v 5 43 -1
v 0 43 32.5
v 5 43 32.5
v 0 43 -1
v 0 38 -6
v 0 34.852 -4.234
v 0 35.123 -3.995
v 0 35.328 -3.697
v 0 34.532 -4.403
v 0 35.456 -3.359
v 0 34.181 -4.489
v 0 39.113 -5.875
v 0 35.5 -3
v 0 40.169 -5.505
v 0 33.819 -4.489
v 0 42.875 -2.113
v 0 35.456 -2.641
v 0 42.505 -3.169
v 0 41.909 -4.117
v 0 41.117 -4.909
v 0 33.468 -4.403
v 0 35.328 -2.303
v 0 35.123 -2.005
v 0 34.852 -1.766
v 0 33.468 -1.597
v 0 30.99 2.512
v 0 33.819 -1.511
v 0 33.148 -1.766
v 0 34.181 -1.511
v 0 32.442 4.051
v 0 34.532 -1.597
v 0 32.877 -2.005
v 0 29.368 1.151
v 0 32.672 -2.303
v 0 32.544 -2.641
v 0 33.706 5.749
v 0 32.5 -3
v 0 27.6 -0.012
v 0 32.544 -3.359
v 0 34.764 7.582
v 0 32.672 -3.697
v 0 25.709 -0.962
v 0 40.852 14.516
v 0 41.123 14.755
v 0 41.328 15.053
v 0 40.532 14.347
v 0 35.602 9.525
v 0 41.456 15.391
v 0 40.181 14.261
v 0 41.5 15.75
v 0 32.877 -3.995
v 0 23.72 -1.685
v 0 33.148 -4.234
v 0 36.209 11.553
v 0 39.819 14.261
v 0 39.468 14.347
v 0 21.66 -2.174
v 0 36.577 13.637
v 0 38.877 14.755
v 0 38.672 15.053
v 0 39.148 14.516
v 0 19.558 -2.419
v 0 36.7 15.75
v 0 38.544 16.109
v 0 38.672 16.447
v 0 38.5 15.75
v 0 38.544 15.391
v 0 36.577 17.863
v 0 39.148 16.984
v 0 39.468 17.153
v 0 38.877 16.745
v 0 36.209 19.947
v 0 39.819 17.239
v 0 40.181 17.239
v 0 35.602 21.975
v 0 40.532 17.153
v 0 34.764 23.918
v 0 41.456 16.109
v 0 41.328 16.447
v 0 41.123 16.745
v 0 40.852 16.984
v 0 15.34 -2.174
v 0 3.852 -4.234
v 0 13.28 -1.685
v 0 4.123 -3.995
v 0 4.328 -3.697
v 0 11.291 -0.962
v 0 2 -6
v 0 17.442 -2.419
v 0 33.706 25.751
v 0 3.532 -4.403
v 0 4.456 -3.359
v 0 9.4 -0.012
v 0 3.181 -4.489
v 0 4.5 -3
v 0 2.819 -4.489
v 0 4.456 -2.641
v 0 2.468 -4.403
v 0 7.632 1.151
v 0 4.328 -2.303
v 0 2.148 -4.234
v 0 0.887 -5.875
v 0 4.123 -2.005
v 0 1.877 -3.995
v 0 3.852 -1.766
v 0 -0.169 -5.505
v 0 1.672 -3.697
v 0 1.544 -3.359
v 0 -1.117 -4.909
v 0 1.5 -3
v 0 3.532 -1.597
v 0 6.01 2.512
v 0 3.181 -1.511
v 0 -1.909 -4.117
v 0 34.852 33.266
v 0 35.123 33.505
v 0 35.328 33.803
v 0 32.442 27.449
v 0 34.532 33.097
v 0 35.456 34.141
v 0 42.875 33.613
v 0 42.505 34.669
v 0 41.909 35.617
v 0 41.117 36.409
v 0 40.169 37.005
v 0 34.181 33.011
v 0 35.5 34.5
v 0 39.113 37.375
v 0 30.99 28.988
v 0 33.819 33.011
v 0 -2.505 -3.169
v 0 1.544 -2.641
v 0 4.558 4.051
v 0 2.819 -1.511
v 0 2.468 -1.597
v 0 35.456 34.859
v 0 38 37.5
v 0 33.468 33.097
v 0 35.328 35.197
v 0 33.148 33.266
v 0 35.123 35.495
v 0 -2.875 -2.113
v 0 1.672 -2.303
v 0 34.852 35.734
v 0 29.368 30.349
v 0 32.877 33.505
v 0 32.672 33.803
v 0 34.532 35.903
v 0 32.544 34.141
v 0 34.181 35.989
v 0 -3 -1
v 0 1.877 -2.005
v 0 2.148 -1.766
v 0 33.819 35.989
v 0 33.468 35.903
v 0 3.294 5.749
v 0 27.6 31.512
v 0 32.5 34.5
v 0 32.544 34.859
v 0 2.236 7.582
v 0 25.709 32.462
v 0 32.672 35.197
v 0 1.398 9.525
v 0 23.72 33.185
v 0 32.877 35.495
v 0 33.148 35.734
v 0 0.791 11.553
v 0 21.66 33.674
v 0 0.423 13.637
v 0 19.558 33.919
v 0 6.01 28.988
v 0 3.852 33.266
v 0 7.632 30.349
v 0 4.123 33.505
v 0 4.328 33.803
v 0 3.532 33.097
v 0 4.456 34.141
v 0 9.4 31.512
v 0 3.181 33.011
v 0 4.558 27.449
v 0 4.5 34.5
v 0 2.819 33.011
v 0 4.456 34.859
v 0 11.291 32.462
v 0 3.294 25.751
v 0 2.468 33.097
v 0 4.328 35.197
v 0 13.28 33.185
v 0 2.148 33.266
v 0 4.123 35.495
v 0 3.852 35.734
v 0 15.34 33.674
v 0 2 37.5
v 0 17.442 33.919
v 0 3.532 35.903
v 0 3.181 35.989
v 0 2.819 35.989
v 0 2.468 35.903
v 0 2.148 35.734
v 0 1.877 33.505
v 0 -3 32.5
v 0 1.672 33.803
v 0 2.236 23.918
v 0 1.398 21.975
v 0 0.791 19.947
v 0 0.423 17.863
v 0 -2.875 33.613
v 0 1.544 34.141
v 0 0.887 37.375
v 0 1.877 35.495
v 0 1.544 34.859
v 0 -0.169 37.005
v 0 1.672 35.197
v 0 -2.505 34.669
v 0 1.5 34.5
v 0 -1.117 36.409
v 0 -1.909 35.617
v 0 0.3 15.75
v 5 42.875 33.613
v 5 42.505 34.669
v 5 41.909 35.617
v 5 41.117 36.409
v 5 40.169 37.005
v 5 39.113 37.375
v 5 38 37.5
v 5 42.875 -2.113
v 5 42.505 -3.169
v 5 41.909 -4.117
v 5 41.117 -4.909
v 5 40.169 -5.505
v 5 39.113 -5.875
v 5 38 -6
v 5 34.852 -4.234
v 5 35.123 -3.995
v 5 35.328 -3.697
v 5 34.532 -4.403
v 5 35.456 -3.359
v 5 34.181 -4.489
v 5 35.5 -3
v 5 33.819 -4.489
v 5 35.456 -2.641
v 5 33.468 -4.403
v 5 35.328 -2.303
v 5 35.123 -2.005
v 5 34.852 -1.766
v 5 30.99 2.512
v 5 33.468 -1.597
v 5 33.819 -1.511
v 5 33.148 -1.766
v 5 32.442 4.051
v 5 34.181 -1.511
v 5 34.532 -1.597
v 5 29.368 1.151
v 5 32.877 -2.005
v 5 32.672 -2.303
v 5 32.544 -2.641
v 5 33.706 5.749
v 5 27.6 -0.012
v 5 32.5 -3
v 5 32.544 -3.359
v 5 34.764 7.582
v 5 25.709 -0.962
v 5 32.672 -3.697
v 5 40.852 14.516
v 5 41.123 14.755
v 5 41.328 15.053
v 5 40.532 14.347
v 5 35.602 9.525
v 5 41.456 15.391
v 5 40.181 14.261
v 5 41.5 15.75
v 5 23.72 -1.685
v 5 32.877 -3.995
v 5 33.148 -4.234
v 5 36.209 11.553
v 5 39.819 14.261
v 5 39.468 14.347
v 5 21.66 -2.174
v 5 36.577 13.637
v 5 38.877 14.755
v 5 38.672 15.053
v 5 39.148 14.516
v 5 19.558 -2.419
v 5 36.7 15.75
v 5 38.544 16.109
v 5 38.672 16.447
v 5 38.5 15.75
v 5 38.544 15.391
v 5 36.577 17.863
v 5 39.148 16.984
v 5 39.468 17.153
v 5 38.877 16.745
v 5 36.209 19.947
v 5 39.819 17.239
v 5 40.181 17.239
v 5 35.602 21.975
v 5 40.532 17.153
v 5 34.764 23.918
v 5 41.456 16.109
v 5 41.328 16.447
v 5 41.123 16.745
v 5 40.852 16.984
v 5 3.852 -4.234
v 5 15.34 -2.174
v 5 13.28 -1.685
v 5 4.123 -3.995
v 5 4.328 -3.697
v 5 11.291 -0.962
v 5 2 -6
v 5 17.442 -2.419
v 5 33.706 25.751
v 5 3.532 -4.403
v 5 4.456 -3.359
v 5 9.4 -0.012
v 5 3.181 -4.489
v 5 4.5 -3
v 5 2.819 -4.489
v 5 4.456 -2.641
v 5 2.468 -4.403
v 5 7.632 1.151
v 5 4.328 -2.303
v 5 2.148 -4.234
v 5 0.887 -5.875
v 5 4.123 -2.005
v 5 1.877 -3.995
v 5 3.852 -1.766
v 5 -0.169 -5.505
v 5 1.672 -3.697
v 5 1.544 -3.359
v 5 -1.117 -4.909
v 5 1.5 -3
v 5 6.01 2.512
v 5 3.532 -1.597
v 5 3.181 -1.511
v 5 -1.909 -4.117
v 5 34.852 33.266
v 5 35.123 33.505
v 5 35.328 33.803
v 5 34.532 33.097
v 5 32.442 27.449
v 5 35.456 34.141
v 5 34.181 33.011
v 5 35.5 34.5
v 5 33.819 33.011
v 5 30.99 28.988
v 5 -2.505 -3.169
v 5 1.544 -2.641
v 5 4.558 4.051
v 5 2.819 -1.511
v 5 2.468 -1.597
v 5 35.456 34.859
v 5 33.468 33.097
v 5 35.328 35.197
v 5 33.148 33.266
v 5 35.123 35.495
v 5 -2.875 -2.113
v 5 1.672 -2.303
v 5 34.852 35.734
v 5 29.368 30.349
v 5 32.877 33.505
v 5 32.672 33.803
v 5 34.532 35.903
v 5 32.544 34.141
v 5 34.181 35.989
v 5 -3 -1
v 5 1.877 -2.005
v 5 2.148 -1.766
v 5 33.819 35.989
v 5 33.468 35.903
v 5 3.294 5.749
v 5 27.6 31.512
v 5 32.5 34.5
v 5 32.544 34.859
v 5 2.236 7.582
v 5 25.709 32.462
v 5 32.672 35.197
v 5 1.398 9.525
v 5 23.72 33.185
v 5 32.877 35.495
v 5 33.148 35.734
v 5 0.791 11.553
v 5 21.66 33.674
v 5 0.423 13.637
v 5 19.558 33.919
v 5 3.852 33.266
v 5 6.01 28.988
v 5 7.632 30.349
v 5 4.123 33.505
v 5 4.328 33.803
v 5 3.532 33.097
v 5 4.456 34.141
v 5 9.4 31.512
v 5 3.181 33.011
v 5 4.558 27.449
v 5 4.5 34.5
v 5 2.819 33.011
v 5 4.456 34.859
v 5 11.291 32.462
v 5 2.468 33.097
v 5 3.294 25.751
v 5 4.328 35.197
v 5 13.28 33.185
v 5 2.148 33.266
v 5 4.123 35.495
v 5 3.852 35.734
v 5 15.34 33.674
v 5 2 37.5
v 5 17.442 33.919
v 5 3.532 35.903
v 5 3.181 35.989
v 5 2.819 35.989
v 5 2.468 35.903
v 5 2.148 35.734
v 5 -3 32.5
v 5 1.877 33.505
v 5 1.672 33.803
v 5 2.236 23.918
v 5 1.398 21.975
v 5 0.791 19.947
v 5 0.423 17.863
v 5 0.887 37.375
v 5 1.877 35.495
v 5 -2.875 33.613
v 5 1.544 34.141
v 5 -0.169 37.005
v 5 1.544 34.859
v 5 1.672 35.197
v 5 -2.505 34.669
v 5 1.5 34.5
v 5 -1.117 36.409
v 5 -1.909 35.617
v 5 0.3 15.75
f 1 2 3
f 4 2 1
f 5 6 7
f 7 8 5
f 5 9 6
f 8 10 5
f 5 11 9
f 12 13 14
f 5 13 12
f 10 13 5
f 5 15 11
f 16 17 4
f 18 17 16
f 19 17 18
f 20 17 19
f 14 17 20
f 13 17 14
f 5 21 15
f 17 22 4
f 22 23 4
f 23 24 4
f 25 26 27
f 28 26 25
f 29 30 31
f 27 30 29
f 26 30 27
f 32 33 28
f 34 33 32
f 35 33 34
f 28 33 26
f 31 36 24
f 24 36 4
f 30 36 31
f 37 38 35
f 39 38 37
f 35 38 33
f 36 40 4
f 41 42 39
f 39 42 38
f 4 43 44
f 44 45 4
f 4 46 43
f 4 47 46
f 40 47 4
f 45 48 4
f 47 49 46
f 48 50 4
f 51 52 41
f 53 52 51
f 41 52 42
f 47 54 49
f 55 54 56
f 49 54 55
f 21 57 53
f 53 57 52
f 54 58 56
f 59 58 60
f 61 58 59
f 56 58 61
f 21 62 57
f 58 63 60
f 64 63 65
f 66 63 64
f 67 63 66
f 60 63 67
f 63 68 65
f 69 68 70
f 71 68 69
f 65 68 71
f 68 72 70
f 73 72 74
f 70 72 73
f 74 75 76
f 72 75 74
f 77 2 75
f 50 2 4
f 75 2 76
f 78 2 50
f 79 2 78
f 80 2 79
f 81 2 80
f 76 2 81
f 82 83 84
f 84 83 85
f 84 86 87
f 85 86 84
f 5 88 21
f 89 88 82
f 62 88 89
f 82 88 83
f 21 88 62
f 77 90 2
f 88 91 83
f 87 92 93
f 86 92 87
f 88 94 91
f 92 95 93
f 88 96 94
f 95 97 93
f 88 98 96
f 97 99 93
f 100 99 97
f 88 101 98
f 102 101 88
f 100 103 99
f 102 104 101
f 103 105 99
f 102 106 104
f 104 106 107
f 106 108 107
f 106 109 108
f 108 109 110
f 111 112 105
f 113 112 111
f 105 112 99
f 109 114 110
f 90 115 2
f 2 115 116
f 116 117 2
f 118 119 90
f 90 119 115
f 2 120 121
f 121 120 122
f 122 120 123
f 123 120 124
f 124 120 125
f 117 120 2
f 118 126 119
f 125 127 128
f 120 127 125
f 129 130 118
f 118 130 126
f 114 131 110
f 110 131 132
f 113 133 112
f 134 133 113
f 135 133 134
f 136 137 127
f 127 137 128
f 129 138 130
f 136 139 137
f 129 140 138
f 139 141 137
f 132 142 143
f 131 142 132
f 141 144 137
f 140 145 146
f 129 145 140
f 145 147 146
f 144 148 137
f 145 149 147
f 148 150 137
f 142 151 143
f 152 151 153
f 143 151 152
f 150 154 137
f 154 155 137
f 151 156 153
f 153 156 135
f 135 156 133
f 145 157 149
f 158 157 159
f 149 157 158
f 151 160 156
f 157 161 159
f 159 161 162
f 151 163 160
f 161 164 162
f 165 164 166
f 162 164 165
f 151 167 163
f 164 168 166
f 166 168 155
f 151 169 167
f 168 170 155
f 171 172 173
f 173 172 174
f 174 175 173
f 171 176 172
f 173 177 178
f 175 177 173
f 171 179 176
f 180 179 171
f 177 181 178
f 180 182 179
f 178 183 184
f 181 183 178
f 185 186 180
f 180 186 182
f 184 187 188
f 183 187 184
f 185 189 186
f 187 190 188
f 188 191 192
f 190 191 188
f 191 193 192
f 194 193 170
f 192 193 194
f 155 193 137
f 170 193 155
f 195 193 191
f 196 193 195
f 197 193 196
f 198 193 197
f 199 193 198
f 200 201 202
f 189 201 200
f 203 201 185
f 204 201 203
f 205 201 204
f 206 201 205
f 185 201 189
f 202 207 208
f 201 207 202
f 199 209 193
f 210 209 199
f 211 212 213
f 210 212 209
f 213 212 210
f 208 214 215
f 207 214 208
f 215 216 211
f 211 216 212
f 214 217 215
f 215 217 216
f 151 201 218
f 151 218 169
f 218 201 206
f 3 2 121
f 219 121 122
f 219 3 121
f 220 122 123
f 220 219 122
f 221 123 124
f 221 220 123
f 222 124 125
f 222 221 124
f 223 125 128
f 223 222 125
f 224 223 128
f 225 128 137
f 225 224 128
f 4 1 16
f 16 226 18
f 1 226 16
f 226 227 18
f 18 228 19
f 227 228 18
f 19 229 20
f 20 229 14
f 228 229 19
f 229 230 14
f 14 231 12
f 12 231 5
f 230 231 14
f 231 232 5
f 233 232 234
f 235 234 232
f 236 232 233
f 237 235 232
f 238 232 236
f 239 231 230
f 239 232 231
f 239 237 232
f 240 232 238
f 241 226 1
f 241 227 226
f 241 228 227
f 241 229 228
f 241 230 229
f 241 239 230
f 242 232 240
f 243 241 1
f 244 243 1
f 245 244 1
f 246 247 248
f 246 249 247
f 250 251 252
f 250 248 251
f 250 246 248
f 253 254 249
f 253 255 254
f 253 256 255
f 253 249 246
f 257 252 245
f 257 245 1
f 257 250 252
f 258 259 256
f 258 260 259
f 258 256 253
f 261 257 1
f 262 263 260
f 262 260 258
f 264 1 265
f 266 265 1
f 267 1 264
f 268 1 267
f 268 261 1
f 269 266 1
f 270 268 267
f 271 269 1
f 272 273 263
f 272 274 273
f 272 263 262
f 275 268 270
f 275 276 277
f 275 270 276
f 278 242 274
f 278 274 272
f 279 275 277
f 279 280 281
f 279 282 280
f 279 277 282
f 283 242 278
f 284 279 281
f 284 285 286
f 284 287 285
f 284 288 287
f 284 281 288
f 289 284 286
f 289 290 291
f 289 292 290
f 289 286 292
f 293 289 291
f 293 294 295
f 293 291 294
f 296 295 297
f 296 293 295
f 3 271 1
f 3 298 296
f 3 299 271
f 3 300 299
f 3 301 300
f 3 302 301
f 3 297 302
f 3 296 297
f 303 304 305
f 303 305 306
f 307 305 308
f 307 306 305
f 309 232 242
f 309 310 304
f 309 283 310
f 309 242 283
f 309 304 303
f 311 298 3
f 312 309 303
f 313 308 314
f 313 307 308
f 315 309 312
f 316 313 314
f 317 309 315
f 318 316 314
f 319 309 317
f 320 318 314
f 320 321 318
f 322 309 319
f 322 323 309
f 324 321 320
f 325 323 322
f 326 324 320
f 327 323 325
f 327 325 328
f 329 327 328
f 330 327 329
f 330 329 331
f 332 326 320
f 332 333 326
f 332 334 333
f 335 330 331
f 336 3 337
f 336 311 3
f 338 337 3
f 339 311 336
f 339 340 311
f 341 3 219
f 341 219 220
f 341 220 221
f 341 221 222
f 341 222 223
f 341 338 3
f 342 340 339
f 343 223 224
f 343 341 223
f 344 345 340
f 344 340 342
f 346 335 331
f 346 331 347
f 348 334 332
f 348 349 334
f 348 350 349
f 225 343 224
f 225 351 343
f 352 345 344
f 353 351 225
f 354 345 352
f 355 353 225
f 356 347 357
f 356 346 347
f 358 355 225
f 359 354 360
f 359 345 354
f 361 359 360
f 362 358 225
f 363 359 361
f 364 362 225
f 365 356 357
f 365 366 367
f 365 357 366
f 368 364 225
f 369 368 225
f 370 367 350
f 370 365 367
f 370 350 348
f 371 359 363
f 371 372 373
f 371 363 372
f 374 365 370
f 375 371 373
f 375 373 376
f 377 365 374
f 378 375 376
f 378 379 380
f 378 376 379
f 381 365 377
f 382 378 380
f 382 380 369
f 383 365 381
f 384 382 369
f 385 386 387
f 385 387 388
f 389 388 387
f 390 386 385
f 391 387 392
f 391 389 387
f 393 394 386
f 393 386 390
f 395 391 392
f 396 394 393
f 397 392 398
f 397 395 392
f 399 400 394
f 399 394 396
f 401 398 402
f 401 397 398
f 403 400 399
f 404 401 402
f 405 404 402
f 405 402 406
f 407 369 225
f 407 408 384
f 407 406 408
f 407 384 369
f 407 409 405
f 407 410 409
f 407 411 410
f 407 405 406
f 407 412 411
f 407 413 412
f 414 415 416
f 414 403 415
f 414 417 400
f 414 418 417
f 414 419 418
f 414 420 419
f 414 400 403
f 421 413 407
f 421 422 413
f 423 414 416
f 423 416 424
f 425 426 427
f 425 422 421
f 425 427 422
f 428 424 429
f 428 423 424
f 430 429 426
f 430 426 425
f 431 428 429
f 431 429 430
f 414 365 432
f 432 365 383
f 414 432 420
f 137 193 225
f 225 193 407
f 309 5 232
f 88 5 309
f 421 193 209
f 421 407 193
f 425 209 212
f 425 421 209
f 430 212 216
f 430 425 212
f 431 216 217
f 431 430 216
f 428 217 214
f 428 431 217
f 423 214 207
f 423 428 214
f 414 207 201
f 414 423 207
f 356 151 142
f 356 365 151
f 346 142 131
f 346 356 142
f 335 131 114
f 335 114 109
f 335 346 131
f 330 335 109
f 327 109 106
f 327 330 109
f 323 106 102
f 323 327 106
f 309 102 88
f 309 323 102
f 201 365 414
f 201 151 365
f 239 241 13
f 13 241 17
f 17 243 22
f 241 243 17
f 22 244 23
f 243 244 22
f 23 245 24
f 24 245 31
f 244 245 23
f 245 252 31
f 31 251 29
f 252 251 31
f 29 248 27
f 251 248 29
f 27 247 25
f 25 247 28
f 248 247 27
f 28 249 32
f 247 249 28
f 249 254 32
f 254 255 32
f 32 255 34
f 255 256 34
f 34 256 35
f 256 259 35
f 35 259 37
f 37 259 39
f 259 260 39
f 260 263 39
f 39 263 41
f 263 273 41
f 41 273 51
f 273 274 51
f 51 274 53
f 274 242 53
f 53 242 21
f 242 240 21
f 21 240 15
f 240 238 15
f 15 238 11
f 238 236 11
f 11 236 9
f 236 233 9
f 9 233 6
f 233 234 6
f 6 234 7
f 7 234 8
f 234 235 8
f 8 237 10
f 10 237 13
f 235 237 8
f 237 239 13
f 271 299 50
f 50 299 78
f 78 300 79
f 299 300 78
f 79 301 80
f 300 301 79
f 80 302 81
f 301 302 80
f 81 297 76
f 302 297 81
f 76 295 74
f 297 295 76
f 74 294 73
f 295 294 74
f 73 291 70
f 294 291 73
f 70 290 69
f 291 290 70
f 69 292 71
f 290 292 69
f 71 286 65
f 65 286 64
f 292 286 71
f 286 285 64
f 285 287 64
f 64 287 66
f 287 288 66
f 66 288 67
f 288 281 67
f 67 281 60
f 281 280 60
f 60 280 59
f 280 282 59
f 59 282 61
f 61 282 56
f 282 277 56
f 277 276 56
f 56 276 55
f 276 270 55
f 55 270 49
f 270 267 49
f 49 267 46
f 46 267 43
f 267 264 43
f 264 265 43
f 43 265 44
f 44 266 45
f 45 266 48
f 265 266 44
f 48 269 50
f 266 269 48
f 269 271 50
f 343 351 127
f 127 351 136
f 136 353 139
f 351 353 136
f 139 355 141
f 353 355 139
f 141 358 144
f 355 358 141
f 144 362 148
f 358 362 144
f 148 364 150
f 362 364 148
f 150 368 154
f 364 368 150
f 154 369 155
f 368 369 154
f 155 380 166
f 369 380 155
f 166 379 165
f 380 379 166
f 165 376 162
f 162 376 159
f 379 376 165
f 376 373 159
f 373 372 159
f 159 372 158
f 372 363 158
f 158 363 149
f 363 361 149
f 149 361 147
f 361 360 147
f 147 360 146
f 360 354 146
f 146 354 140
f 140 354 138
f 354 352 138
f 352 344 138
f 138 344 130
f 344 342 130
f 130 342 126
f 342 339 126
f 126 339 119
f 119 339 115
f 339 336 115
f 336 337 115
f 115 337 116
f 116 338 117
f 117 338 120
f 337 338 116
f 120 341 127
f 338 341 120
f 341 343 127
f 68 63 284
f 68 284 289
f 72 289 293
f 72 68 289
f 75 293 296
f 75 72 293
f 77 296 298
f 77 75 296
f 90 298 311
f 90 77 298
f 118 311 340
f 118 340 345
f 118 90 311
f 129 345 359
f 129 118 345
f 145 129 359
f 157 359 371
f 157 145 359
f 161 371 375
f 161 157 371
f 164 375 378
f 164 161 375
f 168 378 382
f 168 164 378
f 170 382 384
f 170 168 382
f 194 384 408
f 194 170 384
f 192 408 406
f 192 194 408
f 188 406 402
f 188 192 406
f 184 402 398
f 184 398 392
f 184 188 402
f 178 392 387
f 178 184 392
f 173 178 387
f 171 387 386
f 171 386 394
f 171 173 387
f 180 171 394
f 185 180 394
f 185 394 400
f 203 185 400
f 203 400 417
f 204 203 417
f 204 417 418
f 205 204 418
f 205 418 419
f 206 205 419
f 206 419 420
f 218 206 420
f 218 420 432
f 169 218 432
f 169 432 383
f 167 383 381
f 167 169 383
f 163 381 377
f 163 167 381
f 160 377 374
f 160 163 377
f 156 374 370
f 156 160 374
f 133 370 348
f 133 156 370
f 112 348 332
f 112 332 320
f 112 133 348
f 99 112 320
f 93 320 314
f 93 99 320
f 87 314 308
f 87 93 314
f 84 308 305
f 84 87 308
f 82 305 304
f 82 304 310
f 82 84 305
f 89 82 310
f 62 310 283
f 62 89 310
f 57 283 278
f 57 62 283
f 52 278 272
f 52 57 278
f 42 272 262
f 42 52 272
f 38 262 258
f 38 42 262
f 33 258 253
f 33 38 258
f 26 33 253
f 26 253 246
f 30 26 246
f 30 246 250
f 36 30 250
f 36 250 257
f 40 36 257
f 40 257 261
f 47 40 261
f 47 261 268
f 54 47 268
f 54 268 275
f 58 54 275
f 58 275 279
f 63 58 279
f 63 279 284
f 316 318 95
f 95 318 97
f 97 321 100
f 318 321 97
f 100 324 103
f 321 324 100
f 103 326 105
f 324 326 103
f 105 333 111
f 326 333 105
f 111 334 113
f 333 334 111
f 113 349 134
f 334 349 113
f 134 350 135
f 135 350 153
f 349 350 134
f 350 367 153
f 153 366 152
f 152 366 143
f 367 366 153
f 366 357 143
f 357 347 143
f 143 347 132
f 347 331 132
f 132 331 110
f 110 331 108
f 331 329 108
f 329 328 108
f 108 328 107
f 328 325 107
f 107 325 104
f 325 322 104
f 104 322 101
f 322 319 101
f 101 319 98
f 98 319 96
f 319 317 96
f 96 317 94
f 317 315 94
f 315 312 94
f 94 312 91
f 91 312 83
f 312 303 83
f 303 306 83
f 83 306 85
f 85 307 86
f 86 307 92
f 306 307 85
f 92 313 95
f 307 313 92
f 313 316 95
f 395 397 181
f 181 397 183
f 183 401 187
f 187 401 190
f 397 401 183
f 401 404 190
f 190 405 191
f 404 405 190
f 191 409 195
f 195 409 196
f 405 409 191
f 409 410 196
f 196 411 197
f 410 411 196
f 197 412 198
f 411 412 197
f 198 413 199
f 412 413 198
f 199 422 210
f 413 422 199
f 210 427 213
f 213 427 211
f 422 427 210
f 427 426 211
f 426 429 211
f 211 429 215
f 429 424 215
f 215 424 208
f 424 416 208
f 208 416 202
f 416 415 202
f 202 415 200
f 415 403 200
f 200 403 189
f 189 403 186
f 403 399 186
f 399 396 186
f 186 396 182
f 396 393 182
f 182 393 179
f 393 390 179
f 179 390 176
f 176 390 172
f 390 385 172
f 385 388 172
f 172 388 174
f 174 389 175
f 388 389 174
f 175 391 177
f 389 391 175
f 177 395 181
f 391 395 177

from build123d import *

# Parameters (mm, degrees)
SKETCH_W     = 46
SKETCH_H     = 43.5
SKETCH_R     = 18.2
PAD_DEPTH    = 5
SKETCH006_R  = 1.5
POCKET_DEPTH = 5.001
FILLET_R     = 5
FILLET001_R  = 5


with BuildPart() as part:
    # Sketch → Pad (new body)
    with BuildSketch(Plane.YZ):
        with Locations((20, 15.75)):
            Rectangle(SKETCH_W, SKETCH_H)
        with Locations((18.5, 15.75)):
            Circle(SKETCH_R, mode=Mode.SUBTRACT)
    extrude(amount=PAD_DEPTH)

    # Sketch006 → Pocket (cut, through all)
    with BuildSketch(Plane.YZ.offset(5)):
        with Locations((3, 34.5)):
            Circle(SKETCH006_R)
        with Locations((34, 34.5)):
            Circle(SKETCH006_R)
        with Locations((40, 15.75)):
            Circle(SKETCH006_R)
        with Locations((34, -3)):
            Circle(SKETCH006_R)
        with Locations((3, -3)):
            Circle(SKETCH006_R)
    extrude(amount=-POCKET_DEPTH, mode=Mode.SUBTRACT)

    # Fillet
    fillet_edges = [part.edges().sort_by_distance(p)[0] for p in [
        (2.5, 43, -6),
        (2.5, -3, -6),
    ]]
    fillet(fillet_edges, radius=FILLET_R)

    # Fillet001
    fillet001_edges = [part.edges().sort_by_distance(p)[0] for p in [
        (2.5, 43, 37.5),
        (2.5, -3, 37.5),
    ]]
    fillet(fillet001_edges, radius=FILLET001_R)


solid = part.part
